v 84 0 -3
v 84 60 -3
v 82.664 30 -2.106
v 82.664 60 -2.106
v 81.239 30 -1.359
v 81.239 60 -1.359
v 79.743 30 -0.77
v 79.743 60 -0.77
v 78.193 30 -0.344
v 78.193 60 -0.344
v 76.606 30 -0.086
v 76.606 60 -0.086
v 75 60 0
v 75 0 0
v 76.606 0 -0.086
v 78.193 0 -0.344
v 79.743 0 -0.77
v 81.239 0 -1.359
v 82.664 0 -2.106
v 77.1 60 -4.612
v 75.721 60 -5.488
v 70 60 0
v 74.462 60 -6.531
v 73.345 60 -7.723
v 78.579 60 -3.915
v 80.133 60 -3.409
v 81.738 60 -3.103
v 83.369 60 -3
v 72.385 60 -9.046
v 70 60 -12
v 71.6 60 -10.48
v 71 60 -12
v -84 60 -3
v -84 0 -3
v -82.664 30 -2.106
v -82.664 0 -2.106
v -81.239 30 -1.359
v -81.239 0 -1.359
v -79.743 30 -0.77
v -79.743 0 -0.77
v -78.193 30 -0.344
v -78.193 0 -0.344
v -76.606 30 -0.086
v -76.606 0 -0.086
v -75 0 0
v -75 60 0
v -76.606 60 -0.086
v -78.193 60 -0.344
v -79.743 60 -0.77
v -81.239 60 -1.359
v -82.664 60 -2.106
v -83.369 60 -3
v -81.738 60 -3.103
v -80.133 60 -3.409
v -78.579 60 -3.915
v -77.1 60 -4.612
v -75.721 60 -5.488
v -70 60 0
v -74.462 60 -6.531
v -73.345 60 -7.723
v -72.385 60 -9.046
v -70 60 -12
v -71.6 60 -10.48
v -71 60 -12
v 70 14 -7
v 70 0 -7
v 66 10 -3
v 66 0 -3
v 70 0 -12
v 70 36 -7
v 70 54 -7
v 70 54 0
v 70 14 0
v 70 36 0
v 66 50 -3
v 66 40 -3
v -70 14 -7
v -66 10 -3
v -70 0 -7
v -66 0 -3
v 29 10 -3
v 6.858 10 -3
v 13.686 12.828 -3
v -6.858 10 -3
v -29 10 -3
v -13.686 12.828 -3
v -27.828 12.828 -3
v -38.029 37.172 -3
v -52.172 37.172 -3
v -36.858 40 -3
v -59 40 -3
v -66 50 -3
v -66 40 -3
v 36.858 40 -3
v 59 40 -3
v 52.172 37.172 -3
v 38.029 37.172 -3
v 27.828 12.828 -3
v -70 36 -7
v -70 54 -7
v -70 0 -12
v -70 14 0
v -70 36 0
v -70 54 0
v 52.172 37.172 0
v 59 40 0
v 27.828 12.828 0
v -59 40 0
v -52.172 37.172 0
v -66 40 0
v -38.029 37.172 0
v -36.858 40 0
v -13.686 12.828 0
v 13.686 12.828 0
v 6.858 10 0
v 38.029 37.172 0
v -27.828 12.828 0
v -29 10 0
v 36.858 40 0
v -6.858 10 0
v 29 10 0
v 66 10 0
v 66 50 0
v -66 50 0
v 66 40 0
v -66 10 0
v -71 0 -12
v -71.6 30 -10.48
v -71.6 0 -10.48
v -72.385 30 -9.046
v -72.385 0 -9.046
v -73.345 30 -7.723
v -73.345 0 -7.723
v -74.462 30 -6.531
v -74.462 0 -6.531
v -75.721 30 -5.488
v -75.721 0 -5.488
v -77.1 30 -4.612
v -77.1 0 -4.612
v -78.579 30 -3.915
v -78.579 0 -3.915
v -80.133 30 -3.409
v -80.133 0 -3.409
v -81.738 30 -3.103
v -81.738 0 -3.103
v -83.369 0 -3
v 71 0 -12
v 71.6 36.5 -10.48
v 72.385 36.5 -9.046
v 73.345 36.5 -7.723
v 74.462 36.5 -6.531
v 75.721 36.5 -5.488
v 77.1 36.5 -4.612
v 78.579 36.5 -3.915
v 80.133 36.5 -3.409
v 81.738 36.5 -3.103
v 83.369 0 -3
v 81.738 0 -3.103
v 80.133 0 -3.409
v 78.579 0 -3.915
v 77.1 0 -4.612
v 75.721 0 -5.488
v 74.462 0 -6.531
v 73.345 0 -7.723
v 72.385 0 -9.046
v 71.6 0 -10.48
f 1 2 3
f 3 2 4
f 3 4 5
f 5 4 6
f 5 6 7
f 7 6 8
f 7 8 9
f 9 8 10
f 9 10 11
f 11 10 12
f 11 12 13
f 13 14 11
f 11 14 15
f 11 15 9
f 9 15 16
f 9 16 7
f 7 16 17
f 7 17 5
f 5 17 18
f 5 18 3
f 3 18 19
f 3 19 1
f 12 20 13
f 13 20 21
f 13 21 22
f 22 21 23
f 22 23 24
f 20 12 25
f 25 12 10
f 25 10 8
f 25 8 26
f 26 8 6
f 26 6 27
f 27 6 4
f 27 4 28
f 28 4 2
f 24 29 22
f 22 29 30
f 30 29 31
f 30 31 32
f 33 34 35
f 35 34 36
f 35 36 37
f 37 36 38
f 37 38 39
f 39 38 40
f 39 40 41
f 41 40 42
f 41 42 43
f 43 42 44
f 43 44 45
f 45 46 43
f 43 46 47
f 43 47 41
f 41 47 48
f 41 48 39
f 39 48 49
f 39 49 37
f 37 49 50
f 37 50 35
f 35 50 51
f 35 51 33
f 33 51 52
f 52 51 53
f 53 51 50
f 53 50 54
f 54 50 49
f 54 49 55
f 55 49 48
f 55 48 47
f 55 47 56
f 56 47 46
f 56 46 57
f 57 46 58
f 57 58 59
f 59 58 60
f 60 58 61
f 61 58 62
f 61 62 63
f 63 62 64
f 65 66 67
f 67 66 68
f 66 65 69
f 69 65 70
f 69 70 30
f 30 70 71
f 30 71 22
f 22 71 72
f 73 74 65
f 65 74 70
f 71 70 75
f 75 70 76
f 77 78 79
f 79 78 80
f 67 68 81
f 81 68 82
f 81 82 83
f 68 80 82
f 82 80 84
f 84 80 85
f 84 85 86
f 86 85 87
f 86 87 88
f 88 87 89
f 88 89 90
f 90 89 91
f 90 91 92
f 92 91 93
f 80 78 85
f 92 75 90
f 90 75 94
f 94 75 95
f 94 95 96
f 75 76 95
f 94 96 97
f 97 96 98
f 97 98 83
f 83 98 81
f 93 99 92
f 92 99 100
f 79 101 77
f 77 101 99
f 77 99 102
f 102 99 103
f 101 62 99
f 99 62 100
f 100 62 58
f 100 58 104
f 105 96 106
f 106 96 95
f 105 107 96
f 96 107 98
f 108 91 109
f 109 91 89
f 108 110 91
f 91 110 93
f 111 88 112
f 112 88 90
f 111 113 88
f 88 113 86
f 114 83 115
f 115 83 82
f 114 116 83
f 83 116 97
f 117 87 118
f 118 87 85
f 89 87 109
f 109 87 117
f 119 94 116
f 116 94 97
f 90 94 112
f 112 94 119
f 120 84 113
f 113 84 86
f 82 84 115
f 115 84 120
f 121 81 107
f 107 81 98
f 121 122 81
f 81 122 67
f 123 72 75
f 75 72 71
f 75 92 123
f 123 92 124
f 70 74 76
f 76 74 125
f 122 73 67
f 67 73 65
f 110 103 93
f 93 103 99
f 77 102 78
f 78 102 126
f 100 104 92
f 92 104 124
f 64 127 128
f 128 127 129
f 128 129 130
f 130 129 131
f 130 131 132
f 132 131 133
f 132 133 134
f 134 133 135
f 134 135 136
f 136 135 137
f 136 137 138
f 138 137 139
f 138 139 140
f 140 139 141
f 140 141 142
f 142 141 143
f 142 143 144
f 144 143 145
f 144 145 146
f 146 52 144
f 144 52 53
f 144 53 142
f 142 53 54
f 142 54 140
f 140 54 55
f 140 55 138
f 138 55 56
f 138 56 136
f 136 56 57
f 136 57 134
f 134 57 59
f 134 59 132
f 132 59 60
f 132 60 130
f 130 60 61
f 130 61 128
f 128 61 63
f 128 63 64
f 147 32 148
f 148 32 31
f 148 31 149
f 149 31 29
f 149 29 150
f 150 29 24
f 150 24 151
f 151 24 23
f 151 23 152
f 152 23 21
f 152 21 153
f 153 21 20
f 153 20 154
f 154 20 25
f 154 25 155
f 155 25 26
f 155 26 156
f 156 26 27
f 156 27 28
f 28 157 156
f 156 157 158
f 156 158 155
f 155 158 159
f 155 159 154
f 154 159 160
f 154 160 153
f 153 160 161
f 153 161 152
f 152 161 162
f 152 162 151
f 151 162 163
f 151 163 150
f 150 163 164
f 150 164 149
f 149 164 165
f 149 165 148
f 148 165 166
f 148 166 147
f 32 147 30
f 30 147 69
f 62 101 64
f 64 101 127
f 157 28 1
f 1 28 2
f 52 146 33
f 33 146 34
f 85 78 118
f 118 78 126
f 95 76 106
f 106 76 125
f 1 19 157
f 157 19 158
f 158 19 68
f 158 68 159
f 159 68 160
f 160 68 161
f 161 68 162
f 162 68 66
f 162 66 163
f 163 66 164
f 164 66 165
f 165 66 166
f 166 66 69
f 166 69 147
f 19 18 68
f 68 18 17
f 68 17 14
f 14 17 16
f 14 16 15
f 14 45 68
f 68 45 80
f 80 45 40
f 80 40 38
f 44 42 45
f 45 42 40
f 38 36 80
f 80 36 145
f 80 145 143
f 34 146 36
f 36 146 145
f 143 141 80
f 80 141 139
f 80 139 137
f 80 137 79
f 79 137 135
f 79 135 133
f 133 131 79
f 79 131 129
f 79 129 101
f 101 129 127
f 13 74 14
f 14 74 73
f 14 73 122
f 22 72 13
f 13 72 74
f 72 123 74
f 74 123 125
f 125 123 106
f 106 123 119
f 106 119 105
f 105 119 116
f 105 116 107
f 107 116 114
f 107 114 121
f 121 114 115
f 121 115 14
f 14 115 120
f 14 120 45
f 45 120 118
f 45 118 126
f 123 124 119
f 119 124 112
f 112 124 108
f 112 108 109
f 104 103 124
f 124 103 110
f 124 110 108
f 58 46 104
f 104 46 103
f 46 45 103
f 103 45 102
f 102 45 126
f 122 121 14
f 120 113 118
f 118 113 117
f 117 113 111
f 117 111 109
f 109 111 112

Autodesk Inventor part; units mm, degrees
ref_plane "YZ Plane" through (0, 0, 0) normal (1, 0, 0) x (0, 1, 0)
ref_plane "XZ Plane" through (0, 0, 0) normal (0, 1, 0) x (-1, 0, 0)
ref_plane "XY Plane" through (0, 0, 0) normal (0, 0, 1) x (1, 0, 0)
sketch "Эскиз1" plane through (0, 0, 0) normal (0, 0, 1) x (1, 0, 0)
  line L0 (-70, 0) -> (70, 0)
  line L1 (70, 0) -> (70, 10)
  line L2 (70, 10) -> (-70, 10)
  line L3 (-70, 10) -> (-70, 0)
  line L4 (-70, 0) -> (-84, 0)
  line L5 (-84, 0) -> (-84, 60)
  line L6 (-84, 60) -> (-70, 60)
  line L7 (-70, 60) -> (-70, 0)
  line L8 (-70, 50) -> (-70, 60)
  line L9 (-70, 40) -> (70, 40)
  line L10 (70, 40) -> (70, 50)
  line L11 (70, 50) -> (-70, 50)
  line L12 (-70, 50) -> (-70, 40)
  line L13 (70, 0) -> (84, 0)
  line L14 (84, 0) -> (84, 60)
  line L15 (84, 60) -> (70, 60)
  line L16 (70, 60) -> (70, 0)
  line L17 (-55, 40) -> (-25, 10)
  line L18 (-40.8579, 40) -> (-10.8579, 10)
  line L19 (55, 40) -> (25, 10)
  line L20 (10.8579, 10) -> (40.8579, 40)
  point P0 (0, 0)
  dimension "d0" = 140
  dimension "d1" = 10
  dimension "d2" = 60
  dimension "d4" = 10
  dimension "d5" = 10
  dimension "d6" = 60
  dimension "d7" = 14
  dimension "d8" = 14
  dimension "d9" = 0
  dimension "d24" = 45
  dimension "d25" = 45
  dimension "d26" = 10
  dimension "d27" = 0
  dimension "d28" = 15
  dimension "d29" = 70
  dimension "d30" = 45
  dimension "d31" = 45
  dimension "d32" = 15
  dimension "d33" = 10
extrude "Выдавливание1" add sketch "Эскиз1" against normal blind 3 contours L3 L2 L1 L0 | L4 L5 L6 L7 L3 | L1 L16 L10 L15 L14 L13 | L17 L9 L18 L2 | L7 L11 L10 L9 | L2 L20 L9 L19
sketch "Эскиз2" plane through (0, 0, -3) normal (0, 0, -1) x (-1, 0, 0)
  line L0 (-70, 60) -> (-84, 60) projected
  line L1 (-70, 60) -> (-71, 60)
  line L2 (-71, 60) -> (-71, 0)
  line L3 (-71, 0) -> (-70, 0)
  line L4 (-70, 0) -> (-70, 60)
  line L5 (70, 60) -> (71, 60)
  line L6 (71, 60) -> (71, 0)
  line L7 (71, 0) -> (70, 0)
  line L8 (70, 0) -> (70, 60)
  line L9 (-84, 0) -> (84, 0) projected
  point P0 (0, 0)
  dimension "d12" = 1
  dimension "d13" = 1
  dimension "d34" = 0
extrude "Выдавливание2" add sketch "Эскиз2" along normal blind 9
fillet "Сопряжение1" radius 13 2 edges at (71, 30, -3) (-71, 30, -3)
chamfer "Фаска2" distance 4 angle 45 14 edges at (-70, 50, -1.5) (-70, 10, -1.5) (-70, 40, -1.5) (70, 10, -1.5) (70, 40, -1.5) (70, 50, -1.5) (25, 10, -1.5) (-10.8579, 10, -1.5) (40.8579, 40, -1.5) (-25, 10, -1.5) (10.8579, 10, -1.5) (-40.8579, 40, -1.5) (-55, 40, -1.5) (55, 40, -1.5)
chamfer "Фаска3" distance 4 angle 45 8 edges at (-70, 52, -3) (-70, 38, -3) (-70, 5, -3) (-70, 12, -3) (70, 52, -3) (70, 38, -3) (70, 5, -3) (70, 12, -3)
fillet "Сопряжение2" radius 15 2 edges at (-84, 30, 0) (84, 30, 0)
properties part number "zenter"
